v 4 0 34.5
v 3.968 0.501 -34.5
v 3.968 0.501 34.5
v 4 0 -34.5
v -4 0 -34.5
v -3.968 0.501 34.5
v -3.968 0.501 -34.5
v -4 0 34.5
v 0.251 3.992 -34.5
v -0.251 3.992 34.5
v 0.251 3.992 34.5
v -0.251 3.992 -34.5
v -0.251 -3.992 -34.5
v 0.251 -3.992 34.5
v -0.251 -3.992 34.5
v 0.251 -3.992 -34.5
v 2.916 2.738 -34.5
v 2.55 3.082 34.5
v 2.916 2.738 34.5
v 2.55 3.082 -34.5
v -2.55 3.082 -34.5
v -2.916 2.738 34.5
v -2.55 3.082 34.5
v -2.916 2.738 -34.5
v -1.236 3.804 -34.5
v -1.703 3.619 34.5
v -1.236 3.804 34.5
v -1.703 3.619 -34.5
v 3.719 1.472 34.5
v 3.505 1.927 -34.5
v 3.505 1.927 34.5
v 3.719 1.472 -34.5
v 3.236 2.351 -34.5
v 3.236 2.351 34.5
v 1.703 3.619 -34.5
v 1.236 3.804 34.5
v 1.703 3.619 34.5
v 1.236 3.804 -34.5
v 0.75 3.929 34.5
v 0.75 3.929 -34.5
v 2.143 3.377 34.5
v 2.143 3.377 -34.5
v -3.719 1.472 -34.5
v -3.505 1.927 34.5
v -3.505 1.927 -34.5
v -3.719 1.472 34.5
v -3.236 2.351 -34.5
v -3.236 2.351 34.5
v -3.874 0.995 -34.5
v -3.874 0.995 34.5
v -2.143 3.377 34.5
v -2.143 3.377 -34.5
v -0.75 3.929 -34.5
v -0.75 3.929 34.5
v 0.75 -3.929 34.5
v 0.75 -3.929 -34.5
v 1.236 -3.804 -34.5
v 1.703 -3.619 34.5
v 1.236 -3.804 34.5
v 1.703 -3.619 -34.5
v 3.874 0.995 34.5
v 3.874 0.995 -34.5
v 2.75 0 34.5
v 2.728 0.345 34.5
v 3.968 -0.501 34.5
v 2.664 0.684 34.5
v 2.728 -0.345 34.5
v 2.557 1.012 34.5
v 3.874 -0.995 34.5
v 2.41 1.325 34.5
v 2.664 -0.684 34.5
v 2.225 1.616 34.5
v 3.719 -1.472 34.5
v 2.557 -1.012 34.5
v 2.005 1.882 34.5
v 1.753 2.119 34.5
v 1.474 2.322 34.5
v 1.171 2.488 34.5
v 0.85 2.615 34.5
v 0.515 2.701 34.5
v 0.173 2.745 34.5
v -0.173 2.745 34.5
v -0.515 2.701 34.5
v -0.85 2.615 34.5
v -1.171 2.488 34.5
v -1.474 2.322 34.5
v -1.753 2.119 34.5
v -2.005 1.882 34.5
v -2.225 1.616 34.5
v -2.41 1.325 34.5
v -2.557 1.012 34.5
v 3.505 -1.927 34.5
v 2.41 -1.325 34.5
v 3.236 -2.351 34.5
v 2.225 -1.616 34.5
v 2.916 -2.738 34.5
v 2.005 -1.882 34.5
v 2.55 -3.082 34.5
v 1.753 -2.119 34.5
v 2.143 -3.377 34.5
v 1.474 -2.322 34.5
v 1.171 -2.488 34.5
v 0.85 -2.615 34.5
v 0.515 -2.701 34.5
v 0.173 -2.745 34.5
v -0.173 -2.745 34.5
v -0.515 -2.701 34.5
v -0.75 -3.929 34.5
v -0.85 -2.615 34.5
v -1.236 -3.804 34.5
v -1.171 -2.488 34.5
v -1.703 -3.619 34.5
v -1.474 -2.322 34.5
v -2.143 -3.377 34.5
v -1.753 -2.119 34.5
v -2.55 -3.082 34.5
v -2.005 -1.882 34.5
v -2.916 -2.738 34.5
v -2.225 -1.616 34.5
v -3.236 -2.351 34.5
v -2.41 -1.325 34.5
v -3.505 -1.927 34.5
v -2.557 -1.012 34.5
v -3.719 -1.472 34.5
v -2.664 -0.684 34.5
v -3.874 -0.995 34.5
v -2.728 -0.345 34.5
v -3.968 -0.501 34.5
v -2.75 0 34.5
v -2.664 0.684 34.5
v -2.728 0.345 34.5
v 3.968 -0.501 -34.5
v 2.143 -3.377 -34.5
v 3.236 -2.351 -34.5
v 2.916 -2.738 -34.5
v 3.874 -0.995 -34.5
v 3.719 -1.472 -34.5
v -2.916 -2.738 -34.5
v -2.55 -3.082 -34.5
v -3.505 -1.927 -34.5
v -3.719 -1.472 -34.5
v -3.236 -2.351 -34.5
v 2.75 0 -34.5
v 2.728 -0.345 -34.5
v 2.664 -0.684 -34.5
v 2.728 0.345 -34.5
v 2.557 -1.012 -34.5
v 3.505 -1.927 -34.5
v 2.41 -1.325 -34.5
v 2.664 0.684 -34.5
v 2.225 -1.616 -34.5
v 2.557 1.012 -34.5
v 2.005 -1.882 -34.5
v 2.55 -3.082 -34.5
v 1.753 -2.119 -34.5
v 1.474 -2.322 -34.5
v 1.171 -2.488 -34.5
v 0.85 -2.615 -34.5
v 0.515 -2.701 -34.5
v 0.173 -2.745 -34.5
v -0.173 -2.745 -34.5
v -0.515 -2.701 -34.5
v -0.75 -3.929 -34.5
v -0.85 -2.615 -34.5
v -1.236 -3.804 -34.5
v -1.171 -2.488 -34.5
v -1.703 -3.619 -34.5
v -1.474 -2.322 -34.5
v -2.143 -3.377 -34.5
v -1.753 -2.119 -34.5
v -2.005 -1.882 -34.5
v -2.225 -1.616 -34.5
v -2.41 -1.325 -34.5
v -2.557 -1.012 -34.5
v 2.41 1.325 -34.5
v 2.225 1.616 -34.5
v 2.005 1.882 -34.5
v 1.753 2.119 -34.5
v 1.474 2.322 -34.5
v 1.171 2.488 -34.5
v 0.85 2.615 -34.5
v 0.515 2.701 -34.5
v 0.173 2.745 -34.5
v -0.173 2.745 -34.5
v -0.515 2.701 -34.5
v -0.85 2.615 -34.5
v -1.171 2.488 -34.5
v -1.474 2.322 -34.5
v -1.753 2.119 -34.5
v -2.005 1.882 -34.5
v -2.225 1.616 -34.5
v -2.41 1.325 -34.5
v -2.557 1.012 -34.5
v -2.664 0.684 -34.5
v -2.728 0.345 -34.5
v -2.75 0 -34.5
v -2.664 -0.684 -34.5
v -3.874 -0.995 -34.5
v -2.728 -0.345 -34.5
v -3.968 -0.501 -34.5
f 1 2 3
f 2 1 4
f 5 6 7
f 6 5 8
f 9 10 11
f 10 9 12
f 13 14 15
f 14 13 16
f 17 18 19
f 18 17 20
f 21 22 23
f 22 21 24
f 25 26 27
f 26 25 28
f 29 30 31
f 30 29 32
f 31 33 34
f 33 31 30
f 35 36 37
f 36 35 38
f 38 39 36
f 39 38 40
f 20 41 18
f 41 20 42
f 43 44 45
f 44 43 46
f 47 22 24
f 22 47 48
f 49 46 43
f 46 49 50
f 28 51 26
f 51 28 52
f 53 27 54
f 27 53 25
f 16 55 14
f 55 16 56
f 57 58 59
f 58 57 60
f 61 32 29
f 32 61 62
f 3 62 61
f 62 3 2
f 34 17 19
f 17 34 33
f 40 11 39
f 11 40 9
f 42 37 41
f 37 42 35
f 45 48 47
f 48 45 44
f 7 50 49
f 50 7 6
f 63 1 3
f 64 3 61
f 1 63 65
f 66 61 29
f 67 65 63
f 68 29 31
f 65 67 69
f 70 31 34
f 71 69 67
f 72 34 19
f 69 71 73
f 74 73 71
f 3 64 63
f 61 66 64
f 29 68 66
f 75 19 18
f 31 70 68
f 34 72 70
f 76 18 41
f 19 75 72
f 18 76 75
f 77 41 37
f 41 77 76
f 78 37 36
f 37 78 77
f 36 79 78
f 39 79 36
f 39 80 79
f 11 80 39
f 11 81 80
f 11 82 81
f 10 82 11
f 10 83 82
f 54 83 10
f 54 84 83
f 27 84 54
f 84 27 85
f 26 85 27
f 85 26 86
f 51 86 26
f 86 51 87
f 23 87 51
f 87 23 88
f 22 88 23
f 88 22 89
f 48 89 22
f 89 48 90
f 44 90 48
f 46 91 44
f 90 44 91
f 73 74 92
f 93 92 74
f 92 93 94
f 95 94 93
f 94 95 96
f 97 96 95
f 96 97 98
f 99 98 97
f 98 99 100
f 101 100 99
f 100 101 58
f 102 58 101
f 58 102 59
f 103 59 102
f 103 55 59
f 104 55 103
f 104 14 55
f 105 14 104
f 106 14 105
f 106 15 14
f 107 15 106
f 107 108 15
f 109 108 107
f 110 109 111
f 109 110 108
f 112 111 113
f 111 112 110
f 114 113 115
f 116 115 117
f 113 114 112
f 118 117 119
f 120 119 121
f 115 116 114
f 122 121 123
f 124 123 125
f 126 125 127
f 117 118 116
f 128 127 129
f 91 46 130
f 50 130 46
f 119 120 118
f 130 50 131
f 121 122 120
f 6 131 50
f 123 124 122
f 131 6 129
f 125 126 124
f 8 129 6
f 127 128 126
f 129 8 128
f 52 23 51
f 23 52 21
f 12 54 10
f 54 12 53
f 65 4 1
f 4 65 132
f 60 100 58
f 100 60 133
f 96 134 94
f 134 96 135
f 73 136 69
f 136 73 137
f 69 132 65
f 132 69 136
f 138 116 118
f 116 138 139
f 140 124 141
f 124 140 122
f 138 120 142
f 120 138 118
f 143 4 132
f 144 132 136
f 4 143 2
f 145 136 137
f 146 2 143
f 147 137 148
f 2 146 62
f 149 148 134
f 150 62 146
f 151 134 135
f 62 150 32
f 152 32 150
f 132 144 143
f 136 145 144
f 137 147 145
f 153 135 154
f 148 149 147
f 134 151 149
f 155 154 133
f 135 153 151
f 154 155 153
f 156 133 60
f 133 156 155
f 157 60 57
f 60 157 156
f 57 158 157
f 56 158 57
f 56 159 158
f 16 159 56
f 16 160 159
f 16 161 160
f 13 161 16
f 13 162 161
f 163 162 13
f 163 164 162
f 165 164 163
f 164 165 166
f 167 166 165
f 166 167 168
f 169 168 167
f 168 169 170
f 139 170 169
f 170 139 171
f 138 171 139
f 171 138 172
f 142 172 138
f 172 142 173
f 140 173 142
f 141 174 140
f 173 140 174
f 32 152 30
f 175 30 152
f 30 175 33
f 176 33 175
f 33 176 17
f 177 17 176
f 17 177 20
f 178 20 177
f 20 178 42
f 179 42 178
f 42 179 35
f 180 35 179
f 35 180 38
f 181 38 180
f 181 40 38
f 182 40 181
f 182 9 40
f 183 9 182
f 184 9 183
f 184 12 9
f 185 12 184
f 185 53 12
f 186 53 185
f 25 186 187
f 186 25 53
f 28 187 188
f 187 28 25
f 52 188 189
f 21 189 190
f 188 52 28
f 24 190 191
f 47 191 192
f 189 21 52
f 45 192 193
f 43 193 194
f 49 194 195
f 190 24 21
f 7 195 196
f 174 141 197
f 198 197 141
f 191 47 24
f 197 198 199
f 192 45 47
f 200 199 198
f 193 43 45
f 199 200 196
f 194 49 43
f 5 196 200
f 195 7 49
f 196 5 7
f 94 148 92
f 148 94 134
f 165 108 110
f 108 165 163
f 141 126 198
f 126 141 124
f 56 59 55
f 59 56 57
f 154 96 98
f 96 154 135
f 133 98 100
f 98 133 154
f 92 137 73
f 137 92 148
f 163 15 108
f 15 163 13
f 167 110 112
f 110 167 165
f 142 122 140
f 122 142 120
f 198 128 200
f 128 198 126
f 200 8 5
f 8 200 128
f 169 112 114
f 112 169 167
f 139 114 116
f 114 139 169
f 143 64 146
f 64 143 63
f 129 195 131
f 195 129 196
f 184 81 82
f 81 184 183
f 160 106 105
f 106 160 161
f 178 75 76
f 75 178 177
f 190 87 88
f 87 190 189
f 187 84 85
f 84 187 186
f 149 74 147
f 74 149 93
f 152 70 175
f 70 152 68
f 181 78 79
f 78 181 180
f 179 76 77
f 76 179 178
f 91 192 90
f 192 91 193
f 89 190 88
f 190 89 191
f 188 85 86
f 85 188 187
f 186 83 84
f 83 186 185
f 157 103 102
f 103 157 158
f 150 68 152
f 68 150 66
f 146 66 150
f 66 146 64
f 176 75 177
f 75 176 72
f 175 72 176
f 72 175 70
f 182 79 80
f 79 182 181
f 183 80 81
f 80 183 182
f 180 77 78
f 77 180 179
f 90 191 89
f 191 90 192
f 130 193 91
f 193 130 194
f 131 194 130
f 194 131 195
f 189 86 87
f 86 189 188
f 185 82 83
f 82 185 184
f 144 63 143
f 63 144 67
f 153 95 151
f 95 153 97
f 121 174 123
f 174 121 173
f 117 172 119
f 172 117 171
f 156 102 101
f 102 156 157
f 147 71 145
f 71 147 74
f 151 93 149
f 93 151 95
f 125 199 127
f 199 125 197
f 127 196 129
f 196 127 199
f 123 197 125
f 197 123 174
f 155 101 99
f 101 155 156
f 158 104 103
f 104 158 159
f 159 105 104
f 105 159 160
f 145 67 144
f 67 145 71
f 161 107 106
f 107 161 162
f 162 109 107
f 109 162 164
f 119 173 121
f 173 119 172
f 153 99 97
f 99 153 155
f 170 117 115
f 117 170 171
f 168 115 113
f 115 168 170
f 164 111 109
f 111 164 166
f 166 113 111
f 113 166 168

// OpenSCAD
$fn = 50;


difference() {
	union() {
		translate(v = [0, 0, -34.5000000000]) {
			cylinder(h = 69, r = 4.0000000000);
		}
	}
	union() {
		translate(v = [0, 0, -100.0000000000]) {
			cylinder(h = 200, r = 2.7500000000);
		}
	}
}
